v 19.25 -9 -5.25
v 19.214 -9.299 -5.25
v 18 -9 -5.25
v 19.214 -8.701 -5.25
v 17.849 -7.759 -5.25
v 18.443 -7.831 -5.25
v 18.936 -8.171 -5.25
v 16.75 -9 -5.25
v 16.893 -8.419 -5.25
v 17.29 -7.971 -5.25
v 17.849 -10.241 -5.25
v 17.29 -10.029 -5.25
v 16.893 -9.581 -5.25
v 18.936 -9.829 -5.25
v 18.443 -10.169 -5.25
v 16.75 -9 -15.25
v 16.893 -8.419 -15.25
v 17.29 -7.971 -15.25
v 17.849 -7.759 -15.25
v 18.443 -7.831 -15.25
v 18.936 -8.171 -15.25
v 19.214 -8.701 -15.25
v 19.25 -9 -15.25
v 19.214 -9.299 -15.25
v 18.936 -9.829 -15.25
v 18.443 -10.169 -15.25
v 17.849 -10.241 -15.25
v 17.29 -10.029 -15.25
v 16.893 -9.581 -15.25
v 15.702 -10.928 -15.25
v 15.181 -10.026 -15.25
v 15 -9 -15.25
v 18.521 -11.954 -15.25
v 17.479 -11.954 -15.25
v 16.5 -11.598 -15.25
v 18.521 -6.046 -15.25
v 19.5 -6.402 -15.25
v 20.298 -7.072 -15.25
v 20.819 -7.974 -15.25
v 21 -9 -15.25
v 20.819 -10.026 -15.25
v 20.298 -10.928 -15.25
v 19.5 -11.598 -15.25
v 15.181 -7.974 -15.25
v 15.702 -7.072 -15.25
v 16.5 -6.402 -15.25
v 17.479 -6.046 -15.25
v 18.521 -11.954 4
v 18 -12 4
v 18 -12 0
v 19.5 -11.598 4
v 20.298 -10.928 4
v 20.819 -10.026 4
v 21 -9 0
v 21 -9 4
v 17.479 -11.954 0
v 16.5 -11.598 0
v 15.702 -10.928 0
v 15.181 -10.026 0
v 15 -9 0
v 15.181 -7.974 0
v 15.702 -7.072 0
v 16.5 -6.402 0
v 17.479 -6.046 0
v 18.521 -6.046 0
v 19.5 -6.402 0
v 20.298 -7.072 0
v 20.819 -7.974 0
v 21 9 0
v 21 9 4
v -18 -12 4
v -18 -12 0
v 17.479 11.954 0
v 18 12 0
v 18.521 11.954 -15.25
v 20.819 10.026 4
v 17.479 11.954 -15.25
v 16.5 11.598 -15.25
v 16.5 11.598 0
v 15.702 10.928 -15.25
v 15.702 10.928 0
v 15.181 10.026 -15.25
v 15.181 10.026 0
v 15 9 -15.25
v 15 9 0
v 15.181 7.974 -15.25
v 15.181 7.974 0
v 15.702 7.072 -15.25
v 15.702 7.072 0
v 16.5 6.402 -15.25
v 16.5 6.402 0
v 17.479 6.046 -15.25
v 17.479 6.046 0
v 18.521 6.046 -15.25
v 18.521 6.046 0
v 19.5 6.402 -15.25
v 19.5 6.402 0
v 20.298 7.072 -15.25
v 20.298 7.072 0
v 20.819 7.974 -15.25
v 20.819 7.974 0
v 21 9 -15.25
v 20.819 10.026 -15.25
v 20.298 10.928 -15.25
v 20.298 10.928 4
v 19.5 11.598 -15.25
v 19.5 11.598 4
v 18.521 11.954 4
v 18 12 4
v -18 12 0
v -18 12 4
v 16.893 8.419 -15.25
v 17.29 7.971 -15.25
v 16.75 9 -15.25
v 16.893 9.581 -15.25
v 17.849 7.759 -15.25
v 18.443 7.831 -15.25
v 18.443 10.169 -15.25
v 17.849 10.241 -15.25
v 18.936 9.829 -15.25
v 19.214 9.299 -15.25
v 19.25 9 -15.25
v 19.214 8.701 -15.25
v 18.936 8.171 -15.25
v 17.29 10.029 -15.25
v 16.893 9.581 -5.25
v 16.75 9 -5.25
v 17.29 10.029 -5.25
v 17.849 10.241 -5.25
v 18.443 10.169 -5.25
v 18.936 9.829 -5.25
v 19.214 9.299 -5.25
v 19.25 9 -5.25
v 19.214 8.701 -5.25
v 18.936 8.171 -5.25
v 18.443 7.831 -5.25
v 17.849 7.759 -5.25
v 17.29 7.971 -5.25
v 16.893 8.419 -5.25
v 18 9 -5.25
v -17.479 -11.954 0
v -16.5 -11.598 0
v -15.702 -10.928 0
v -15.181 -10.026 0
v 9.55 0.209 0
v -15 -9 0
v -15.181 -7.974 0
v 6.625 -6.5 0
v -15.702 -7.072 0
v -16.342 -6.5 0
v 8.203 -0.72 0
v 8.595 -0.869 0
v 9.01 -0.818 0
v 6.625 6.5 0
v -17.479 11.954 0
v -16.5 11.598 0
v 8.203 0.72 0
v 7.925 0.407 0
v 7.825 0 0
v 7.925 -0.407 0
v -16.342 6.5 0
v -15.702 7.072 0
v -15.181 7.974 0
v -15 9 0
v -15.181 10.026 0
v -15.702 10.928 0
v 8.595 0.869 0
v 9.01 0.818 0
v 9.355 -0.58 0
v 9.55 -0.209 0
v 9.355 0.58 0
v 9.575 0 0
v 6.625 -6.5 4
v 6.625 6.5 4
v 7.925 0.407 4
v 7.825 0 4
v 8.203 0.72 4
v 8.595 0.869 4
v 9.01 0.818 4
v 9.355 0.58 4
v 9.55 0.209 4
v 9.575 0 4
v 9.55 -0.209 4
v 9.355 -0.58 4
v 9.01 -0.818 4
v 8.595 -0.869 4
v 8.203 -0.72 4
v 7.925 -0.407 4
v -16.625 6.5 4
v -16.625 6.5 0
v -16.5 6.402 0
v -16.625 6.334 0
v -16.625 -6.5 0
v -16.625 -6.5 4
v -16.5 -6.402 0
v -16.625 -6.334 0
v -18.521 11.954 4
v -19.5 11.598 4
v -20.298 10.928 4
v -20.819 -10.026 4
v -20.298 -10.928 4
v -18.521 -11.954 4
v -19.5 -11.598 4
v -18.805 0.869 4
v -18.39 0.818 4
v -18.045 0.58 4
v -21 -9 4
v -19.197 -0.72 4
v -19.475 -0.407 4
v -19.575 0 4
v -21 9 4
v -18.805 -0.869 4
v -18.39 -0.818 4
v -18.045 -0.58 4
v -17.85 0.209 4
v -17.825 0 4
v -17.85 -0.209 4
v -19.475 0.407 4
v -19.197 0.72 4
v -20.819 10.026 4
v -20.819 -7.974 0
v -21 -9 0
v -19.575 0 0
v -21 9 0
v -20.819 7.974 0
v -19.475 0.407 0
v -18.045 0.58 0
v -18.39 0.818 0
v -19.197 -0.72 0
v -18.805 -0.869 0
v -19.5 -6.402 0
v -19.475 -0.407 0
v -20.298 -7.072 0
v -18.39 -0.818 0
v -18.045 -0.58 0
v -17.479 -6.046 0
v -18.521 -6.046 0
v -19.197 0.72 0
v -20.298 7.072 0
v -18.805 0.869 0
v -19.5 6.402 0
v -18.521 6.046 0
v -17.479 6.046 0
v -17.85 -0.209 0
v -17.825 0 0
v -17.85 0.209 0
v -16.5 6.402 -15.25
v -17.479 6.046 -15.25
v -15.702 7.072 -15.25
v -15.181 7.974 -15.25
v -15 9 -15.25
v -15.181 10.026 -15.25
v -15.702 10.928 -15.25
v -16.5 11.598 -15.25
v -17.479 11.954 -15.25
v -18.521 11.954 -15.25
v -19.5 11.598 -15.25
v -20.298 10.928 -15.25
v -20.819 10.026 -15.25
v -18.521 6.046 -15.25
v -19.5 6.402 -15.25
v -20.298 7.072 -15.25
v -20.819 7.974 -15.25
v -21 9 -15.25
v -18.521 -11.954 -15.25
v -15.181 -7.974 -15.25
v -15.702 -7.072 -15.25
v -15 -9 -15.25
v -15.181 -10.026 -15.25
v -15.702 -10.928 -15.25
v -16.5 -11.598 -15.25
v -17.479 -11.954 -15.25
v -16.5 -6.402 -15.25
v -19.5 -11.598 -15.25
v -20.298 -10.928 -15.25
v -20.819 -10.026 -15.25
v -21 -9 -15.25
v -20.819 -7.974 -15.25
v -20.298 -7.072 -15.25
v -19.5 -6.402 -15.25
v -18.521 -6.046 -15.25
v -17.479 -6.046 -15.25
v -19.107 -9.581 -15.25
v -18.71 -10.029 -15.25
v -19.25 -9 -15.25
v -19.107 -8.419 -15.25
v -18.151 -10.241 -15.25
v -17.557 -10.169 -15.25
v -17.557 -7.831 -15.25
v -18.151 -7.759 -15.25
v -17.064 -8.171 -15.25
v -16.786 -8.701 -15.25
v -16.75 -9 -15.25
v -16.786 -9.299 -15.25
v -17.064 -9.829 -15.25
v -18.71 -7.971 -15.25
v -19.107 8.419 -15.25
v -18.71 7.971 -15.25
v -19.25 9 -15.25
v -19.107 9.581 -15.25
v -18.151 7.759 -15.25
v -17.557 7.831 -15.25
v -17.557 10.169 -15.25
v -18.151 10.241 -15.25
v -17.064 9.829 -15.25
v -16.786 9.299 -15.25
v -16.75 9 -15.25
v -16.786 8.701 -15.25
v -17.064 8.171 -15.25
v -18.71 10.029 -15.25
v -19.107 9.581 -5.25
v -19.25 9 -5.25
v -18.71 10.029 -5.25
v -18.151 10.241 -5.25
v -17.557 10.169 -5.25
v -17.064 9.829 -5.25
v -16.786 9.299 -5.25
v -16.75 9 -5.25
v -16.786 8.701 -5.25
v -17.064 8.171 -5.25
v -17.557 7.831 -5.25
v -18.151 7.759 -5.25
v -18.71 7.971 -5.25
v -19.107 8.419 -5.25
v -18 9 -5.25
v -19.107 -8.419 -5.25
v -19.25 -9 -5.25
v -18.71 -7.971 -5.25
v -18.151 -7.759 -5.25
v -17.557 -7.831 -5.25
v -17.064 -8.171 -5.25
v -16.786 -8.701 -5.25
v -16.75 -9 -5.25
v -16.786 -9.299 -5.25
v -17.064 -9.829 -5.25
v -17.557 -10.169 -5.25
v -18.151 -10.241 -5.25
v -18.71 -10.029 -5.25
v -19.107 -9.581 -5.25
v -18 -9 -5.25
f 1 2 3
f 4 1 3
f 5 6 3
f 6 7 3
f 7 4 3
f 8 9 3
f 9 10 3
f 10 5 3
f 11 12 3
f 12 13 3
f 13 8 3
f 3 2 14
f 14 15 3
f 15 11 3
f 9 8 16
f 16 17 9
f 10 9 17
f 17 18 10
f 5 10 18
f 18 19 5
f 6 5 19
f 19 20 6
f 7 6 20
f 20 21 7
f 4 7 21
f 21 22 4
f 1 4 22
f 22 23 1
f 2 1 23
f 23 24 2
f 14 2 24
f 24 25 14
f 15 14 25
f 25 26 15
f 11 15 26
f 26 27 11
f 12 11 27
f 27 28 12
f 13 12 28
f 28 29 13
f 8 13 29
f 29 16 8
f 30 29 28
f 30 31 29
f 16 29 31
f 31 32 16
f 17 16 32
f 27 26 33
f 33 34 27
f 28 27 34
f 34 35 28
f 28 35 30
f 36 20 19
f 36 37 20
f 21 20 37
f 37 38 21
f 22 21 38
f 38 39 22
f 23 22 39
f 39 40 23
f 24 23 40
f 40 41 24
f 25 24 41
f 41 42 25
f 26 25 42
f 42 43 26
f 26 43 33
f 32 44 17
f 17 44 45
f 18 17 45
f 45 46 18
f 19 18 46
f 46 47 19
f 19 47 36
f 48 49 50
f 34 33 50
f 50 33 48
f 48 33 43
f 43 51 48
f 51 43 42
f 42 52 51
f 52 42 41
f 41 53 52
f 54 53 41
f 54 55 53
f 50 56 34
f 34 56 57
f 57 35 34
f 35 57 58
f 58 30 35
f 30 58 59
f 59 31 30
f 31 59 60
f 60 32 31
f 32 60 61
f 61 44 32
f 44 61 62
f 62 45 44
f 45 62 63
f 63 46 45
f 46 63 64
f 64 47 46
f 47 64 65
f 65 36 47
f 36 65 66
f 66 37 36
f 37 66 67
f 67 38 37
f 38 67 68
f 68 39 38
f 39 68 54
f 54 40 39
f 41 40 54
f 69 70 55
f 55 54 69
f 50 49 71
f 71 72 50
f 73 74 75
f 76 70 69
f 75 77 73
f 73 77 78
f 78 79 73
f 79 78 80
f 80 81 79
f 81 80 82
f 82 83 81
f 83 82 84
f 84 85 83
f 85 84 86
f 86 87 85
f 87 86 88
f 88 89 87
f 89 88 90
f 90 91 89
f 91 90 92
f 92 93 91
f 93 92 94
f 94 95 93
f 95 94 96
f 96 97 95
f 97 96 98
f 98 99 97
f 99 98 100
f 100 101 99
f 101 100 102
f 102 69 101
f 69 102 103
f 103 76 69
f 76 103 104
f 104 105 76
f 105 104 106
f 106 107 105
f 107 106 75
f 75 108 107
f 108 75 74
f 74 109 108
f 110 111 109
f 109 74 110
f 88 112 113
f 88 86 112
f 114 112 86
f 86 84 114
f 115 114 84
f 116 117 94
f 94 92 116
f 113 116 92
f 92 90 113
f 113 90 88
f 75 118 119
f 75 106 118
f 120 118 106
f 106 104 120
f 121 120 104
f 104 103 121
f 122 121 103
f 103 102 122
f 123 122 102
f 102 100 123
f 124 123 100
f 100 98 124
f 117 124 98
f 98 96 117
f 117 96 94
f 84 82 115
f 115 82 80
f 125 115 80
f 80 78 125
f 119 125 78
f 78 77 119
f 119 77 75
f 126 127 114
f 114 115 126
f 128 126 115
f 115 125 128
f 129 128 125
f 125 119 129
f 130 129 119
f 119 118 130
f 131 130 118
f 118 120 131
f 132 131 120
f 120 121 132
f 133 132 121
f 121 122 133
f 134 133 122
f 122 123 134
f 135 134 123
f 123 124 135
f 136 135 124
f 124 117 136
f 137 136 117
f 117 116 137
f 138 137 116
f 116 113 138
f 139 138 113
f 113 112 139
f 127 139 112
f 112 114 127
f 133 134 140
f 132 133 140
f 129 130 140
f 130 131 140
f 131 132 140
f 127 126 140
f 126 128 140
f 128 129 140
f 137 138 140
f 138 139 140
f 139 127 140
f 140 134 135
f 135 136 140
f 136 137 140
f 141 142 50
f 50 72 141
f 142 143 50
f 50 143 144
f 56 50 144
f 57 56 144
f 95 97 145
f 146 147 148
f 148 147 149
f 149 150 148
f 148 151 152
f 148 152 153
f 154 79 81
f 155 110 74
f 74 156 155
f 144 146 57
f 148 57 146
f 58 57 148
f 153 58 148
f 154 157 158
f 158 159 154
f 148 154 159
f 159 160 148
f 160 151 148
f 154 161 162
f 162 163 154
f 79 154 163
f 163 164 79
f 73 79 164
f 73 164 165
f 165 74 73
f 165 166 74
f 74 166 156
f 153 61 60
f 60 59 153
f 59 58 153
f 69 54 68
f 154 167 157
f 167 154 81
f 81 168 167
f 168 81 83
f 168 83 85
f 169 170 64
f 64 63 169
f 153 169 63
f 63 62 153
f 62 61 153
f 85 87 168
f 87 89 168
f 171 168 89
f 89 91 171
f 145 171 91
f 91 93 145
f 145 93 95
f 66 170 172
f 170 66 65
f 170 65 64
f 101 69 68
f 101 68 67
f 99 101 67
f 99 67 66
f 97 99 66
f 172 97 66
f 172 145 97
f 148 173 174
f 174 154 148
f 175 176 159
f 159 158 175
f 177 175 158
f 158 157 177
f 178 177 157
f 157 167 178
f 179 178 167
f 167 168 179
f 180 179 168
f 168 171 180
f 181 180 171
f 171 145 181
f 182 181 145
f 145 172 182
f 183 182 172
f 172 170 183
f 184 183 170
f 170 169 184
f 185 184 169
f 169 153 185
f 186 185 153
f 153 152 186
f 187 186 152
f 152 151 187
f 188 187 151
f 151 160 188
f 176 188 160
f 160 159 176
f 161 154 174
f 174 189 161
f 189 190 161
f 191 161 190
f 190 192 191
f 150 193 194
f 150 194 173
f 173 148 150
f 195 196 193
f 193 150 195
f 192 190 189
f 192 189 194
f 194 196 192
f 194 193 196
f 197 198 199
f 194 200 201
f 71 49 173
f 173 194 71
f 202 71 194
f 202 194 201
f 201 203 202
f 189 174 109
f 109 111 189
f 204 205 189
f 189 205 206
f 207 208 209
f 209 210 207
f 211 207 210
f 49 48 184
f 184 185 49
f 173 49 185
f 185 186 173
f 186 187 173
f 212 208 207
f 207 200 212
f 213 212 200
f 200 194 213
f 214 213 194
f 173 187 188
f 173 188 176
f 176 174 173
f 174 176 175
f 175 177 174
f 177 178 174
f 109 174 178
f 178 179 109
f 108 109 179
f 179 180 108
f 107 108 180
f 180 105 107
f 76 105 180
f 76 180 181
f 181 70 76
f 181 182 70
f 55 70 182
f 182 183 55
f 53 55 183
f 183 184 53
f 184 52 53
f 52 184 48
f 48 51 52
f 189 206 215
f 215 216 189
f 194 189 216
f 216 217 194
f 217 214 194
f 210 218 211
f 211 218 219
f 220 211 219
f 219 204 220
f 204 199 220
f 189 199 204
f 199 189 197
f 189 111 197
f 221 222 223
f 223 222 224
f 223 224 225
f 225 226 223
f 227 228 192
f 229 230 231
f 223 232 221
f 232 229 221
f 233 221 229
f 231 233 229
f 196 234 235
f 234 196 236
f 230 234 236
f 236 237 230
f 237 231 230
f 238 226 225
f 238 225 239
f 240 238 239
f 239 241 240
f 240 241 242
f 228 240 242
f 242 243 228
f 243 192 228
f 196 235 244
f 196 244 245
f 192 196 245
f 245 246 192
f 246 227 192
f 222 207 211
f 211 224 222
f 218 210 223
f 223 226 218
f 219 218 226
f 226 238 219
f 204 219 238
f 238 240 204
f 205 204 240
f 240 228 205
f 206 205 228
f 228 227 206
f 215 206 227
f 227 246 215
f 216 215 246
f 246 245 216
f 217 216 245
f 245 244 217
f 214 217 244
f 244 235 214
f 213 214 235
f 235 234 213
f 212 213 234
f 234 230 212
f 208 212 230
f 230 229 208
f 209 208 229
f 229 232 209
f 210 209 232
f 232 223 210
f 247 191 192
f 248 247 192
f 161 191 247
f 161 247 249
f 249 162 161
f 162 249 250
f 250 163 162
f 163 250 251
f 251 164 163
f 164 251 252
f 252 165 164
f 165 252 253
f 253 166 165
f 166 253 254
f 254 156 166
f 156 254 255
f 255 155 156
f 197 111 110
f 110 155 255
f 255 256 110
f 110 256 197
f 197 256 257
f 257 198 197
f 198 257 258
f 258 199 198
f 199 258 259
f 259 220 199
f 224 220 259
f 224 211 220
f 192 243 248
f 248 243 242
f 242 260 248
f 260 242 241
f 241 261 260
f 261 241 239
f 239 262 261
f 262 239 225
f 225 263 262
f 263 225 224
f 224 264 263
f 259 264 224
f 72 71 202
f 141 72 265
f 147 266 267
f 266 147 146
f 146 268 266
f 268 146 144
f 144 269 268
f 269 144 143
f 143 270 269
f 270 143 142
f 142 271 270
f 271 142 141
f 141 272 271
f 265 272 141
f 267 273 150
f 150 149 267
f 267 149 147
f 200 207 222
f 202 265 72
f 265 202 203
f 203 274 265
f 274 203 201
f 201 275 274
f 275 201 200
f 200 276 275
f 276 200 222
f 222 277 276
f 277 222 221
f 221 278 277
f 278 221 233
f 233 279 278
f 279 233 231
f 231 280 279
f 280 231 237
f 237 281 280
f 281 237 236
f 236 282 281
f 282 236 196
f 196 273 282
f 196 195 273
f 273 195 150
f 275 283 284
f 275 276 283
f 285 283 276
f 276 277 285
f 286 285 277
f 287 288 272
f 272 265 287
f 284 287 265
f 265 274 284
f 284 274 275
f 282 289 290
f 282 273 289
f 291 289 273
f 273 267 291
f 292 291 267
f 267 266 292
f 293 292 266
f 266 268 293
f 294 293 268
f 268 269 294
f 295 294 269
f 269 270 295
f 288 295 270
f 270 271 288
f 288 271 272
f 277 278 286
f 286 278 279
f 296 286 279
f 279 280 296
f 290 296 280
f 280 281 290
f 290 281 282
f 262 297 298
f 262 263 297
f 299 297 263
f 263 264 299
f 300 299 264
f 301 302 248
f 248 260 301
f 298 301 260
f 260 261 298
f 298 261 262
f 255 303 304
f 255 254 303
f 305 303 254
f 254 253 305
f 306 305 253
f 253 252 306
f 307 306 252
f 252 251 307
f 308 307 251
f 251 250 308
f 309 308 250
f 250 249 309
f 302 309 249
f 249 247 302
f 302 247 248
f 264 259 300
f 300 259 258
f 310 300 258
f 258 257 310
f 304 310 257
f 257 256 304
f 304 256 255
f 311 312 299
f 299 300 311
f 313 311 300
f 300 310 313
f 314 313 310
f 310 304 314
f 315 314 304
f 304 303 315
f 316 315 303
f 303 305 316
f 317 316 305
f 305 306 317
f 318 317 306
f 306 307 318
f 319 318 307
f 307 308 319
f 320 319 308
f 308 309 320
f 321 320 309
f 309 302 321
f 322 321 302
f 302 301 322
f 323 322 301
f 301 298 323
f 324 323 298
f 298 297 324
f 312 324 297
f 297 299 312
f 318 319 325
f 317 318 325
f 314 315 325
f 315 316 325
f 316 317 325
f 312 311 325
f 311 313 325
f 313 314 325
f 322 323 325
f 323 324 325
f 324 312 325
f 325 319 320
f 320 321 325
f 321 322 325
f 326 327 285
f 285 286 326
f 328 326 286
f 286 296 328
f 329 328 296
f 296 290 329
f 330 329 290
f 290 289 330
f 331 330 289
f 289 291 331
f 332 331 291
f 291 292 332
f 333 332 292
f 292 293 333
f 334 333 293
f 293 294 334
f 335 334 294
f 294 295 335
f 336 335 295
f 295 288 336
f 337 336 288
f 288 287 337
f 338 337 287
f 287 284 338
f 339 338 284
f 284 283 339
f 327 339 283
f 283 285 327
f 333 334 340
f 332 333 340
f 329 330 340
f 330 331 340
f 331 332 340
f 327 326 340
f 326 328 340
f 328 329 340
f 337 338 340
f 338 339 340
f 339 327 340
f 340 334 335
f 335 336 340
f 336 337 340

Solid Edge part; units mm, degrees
sketch "Sketch1" plane through (0, 0, 0) normal (0, 0, 1) x (1, 0, 0)
  line L0 (-18, 12) -> (18, 12)
  line L1 (21, 9) -> (21, -9)
  line L2 (-18, -12) -> (18, -12)
  line L3 (-21, 9) -> (-21, -9)
  arc A0 (18, 12) -> (21, 9) centre (18, 9) cw
  arc A1 (21, -9) -> (18, -12) centre (18, -9) cw
  arc A2 (-18, -12) -> (-21, -9) centre (-18, -9) cw
  arc A3 (-21, 9) -> (-18, 12) centre (-18, 9) cw
  circle A4 centre (8.7, 0) radius 0.875
  circle A5 centre (-18.7, 0) radius 0.875
  line L4 (6.625, -6.5) -> (-16.625, -6.5)
  line L5 (-16.625, -6.5) -> (-16.625, 6.5)
  line L6 (-16.625, 6.5) -> (6.625, 6.5)
  line L7 (6.625, 6.5) -> (6.625, -6.5)
extrude "Protrusion1" add sketch "Sketch1" along normal blind 4
sketch "Sketch2" plane through (0, 0, 0) normal (0, 0, -1) x (1, 0, 0)
  circle A0 centre (-18, 9) radius 3
  circle A1 centre (18, 9) radius 3
  circle A2 centre (-18, -9) radius 3
  circle A3 centre (18, -9) radius 3
extrude "ExtrudedProtrusion_3" add sketch "Sketch2" along normal blind 15.25
sketch "Sketch3" plane through (18, -9, -15.25) normal (0, 0, -1) x (1, 0, 0)
  circle A0 centre (0, 0) radius 1.25
  circle A1 centre (0, -18) radius 1.25
  circle A2 centre (-36, -18) radius 1.25
  circle A3 centre (-36, 0) radius 1.25
  dimension "D1" = 2.5
extrude "ExtrudedCutout_1" cut sketch "Sketch3" against normal blind 10
